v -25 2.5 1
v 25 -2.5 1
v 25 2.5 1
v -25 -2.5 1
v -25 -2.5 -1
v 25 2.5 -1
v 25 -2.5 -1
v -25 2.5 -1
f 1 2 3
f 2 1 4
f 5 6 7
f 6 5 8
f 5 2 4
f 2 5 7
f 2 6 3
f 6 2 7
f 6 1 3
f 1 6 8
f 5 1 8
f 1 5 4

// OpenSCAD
module component_name_1() {
    // Dimensions of the rectangular prism
    length = 50;  // Length of the prism
    width = 5;    // Width of the prism
    height = 2;   // Height of the prism

    // Create the rectangular prism
    cube([length, width, height], center = true);
}

// Main function to render the model
component_name_1();
